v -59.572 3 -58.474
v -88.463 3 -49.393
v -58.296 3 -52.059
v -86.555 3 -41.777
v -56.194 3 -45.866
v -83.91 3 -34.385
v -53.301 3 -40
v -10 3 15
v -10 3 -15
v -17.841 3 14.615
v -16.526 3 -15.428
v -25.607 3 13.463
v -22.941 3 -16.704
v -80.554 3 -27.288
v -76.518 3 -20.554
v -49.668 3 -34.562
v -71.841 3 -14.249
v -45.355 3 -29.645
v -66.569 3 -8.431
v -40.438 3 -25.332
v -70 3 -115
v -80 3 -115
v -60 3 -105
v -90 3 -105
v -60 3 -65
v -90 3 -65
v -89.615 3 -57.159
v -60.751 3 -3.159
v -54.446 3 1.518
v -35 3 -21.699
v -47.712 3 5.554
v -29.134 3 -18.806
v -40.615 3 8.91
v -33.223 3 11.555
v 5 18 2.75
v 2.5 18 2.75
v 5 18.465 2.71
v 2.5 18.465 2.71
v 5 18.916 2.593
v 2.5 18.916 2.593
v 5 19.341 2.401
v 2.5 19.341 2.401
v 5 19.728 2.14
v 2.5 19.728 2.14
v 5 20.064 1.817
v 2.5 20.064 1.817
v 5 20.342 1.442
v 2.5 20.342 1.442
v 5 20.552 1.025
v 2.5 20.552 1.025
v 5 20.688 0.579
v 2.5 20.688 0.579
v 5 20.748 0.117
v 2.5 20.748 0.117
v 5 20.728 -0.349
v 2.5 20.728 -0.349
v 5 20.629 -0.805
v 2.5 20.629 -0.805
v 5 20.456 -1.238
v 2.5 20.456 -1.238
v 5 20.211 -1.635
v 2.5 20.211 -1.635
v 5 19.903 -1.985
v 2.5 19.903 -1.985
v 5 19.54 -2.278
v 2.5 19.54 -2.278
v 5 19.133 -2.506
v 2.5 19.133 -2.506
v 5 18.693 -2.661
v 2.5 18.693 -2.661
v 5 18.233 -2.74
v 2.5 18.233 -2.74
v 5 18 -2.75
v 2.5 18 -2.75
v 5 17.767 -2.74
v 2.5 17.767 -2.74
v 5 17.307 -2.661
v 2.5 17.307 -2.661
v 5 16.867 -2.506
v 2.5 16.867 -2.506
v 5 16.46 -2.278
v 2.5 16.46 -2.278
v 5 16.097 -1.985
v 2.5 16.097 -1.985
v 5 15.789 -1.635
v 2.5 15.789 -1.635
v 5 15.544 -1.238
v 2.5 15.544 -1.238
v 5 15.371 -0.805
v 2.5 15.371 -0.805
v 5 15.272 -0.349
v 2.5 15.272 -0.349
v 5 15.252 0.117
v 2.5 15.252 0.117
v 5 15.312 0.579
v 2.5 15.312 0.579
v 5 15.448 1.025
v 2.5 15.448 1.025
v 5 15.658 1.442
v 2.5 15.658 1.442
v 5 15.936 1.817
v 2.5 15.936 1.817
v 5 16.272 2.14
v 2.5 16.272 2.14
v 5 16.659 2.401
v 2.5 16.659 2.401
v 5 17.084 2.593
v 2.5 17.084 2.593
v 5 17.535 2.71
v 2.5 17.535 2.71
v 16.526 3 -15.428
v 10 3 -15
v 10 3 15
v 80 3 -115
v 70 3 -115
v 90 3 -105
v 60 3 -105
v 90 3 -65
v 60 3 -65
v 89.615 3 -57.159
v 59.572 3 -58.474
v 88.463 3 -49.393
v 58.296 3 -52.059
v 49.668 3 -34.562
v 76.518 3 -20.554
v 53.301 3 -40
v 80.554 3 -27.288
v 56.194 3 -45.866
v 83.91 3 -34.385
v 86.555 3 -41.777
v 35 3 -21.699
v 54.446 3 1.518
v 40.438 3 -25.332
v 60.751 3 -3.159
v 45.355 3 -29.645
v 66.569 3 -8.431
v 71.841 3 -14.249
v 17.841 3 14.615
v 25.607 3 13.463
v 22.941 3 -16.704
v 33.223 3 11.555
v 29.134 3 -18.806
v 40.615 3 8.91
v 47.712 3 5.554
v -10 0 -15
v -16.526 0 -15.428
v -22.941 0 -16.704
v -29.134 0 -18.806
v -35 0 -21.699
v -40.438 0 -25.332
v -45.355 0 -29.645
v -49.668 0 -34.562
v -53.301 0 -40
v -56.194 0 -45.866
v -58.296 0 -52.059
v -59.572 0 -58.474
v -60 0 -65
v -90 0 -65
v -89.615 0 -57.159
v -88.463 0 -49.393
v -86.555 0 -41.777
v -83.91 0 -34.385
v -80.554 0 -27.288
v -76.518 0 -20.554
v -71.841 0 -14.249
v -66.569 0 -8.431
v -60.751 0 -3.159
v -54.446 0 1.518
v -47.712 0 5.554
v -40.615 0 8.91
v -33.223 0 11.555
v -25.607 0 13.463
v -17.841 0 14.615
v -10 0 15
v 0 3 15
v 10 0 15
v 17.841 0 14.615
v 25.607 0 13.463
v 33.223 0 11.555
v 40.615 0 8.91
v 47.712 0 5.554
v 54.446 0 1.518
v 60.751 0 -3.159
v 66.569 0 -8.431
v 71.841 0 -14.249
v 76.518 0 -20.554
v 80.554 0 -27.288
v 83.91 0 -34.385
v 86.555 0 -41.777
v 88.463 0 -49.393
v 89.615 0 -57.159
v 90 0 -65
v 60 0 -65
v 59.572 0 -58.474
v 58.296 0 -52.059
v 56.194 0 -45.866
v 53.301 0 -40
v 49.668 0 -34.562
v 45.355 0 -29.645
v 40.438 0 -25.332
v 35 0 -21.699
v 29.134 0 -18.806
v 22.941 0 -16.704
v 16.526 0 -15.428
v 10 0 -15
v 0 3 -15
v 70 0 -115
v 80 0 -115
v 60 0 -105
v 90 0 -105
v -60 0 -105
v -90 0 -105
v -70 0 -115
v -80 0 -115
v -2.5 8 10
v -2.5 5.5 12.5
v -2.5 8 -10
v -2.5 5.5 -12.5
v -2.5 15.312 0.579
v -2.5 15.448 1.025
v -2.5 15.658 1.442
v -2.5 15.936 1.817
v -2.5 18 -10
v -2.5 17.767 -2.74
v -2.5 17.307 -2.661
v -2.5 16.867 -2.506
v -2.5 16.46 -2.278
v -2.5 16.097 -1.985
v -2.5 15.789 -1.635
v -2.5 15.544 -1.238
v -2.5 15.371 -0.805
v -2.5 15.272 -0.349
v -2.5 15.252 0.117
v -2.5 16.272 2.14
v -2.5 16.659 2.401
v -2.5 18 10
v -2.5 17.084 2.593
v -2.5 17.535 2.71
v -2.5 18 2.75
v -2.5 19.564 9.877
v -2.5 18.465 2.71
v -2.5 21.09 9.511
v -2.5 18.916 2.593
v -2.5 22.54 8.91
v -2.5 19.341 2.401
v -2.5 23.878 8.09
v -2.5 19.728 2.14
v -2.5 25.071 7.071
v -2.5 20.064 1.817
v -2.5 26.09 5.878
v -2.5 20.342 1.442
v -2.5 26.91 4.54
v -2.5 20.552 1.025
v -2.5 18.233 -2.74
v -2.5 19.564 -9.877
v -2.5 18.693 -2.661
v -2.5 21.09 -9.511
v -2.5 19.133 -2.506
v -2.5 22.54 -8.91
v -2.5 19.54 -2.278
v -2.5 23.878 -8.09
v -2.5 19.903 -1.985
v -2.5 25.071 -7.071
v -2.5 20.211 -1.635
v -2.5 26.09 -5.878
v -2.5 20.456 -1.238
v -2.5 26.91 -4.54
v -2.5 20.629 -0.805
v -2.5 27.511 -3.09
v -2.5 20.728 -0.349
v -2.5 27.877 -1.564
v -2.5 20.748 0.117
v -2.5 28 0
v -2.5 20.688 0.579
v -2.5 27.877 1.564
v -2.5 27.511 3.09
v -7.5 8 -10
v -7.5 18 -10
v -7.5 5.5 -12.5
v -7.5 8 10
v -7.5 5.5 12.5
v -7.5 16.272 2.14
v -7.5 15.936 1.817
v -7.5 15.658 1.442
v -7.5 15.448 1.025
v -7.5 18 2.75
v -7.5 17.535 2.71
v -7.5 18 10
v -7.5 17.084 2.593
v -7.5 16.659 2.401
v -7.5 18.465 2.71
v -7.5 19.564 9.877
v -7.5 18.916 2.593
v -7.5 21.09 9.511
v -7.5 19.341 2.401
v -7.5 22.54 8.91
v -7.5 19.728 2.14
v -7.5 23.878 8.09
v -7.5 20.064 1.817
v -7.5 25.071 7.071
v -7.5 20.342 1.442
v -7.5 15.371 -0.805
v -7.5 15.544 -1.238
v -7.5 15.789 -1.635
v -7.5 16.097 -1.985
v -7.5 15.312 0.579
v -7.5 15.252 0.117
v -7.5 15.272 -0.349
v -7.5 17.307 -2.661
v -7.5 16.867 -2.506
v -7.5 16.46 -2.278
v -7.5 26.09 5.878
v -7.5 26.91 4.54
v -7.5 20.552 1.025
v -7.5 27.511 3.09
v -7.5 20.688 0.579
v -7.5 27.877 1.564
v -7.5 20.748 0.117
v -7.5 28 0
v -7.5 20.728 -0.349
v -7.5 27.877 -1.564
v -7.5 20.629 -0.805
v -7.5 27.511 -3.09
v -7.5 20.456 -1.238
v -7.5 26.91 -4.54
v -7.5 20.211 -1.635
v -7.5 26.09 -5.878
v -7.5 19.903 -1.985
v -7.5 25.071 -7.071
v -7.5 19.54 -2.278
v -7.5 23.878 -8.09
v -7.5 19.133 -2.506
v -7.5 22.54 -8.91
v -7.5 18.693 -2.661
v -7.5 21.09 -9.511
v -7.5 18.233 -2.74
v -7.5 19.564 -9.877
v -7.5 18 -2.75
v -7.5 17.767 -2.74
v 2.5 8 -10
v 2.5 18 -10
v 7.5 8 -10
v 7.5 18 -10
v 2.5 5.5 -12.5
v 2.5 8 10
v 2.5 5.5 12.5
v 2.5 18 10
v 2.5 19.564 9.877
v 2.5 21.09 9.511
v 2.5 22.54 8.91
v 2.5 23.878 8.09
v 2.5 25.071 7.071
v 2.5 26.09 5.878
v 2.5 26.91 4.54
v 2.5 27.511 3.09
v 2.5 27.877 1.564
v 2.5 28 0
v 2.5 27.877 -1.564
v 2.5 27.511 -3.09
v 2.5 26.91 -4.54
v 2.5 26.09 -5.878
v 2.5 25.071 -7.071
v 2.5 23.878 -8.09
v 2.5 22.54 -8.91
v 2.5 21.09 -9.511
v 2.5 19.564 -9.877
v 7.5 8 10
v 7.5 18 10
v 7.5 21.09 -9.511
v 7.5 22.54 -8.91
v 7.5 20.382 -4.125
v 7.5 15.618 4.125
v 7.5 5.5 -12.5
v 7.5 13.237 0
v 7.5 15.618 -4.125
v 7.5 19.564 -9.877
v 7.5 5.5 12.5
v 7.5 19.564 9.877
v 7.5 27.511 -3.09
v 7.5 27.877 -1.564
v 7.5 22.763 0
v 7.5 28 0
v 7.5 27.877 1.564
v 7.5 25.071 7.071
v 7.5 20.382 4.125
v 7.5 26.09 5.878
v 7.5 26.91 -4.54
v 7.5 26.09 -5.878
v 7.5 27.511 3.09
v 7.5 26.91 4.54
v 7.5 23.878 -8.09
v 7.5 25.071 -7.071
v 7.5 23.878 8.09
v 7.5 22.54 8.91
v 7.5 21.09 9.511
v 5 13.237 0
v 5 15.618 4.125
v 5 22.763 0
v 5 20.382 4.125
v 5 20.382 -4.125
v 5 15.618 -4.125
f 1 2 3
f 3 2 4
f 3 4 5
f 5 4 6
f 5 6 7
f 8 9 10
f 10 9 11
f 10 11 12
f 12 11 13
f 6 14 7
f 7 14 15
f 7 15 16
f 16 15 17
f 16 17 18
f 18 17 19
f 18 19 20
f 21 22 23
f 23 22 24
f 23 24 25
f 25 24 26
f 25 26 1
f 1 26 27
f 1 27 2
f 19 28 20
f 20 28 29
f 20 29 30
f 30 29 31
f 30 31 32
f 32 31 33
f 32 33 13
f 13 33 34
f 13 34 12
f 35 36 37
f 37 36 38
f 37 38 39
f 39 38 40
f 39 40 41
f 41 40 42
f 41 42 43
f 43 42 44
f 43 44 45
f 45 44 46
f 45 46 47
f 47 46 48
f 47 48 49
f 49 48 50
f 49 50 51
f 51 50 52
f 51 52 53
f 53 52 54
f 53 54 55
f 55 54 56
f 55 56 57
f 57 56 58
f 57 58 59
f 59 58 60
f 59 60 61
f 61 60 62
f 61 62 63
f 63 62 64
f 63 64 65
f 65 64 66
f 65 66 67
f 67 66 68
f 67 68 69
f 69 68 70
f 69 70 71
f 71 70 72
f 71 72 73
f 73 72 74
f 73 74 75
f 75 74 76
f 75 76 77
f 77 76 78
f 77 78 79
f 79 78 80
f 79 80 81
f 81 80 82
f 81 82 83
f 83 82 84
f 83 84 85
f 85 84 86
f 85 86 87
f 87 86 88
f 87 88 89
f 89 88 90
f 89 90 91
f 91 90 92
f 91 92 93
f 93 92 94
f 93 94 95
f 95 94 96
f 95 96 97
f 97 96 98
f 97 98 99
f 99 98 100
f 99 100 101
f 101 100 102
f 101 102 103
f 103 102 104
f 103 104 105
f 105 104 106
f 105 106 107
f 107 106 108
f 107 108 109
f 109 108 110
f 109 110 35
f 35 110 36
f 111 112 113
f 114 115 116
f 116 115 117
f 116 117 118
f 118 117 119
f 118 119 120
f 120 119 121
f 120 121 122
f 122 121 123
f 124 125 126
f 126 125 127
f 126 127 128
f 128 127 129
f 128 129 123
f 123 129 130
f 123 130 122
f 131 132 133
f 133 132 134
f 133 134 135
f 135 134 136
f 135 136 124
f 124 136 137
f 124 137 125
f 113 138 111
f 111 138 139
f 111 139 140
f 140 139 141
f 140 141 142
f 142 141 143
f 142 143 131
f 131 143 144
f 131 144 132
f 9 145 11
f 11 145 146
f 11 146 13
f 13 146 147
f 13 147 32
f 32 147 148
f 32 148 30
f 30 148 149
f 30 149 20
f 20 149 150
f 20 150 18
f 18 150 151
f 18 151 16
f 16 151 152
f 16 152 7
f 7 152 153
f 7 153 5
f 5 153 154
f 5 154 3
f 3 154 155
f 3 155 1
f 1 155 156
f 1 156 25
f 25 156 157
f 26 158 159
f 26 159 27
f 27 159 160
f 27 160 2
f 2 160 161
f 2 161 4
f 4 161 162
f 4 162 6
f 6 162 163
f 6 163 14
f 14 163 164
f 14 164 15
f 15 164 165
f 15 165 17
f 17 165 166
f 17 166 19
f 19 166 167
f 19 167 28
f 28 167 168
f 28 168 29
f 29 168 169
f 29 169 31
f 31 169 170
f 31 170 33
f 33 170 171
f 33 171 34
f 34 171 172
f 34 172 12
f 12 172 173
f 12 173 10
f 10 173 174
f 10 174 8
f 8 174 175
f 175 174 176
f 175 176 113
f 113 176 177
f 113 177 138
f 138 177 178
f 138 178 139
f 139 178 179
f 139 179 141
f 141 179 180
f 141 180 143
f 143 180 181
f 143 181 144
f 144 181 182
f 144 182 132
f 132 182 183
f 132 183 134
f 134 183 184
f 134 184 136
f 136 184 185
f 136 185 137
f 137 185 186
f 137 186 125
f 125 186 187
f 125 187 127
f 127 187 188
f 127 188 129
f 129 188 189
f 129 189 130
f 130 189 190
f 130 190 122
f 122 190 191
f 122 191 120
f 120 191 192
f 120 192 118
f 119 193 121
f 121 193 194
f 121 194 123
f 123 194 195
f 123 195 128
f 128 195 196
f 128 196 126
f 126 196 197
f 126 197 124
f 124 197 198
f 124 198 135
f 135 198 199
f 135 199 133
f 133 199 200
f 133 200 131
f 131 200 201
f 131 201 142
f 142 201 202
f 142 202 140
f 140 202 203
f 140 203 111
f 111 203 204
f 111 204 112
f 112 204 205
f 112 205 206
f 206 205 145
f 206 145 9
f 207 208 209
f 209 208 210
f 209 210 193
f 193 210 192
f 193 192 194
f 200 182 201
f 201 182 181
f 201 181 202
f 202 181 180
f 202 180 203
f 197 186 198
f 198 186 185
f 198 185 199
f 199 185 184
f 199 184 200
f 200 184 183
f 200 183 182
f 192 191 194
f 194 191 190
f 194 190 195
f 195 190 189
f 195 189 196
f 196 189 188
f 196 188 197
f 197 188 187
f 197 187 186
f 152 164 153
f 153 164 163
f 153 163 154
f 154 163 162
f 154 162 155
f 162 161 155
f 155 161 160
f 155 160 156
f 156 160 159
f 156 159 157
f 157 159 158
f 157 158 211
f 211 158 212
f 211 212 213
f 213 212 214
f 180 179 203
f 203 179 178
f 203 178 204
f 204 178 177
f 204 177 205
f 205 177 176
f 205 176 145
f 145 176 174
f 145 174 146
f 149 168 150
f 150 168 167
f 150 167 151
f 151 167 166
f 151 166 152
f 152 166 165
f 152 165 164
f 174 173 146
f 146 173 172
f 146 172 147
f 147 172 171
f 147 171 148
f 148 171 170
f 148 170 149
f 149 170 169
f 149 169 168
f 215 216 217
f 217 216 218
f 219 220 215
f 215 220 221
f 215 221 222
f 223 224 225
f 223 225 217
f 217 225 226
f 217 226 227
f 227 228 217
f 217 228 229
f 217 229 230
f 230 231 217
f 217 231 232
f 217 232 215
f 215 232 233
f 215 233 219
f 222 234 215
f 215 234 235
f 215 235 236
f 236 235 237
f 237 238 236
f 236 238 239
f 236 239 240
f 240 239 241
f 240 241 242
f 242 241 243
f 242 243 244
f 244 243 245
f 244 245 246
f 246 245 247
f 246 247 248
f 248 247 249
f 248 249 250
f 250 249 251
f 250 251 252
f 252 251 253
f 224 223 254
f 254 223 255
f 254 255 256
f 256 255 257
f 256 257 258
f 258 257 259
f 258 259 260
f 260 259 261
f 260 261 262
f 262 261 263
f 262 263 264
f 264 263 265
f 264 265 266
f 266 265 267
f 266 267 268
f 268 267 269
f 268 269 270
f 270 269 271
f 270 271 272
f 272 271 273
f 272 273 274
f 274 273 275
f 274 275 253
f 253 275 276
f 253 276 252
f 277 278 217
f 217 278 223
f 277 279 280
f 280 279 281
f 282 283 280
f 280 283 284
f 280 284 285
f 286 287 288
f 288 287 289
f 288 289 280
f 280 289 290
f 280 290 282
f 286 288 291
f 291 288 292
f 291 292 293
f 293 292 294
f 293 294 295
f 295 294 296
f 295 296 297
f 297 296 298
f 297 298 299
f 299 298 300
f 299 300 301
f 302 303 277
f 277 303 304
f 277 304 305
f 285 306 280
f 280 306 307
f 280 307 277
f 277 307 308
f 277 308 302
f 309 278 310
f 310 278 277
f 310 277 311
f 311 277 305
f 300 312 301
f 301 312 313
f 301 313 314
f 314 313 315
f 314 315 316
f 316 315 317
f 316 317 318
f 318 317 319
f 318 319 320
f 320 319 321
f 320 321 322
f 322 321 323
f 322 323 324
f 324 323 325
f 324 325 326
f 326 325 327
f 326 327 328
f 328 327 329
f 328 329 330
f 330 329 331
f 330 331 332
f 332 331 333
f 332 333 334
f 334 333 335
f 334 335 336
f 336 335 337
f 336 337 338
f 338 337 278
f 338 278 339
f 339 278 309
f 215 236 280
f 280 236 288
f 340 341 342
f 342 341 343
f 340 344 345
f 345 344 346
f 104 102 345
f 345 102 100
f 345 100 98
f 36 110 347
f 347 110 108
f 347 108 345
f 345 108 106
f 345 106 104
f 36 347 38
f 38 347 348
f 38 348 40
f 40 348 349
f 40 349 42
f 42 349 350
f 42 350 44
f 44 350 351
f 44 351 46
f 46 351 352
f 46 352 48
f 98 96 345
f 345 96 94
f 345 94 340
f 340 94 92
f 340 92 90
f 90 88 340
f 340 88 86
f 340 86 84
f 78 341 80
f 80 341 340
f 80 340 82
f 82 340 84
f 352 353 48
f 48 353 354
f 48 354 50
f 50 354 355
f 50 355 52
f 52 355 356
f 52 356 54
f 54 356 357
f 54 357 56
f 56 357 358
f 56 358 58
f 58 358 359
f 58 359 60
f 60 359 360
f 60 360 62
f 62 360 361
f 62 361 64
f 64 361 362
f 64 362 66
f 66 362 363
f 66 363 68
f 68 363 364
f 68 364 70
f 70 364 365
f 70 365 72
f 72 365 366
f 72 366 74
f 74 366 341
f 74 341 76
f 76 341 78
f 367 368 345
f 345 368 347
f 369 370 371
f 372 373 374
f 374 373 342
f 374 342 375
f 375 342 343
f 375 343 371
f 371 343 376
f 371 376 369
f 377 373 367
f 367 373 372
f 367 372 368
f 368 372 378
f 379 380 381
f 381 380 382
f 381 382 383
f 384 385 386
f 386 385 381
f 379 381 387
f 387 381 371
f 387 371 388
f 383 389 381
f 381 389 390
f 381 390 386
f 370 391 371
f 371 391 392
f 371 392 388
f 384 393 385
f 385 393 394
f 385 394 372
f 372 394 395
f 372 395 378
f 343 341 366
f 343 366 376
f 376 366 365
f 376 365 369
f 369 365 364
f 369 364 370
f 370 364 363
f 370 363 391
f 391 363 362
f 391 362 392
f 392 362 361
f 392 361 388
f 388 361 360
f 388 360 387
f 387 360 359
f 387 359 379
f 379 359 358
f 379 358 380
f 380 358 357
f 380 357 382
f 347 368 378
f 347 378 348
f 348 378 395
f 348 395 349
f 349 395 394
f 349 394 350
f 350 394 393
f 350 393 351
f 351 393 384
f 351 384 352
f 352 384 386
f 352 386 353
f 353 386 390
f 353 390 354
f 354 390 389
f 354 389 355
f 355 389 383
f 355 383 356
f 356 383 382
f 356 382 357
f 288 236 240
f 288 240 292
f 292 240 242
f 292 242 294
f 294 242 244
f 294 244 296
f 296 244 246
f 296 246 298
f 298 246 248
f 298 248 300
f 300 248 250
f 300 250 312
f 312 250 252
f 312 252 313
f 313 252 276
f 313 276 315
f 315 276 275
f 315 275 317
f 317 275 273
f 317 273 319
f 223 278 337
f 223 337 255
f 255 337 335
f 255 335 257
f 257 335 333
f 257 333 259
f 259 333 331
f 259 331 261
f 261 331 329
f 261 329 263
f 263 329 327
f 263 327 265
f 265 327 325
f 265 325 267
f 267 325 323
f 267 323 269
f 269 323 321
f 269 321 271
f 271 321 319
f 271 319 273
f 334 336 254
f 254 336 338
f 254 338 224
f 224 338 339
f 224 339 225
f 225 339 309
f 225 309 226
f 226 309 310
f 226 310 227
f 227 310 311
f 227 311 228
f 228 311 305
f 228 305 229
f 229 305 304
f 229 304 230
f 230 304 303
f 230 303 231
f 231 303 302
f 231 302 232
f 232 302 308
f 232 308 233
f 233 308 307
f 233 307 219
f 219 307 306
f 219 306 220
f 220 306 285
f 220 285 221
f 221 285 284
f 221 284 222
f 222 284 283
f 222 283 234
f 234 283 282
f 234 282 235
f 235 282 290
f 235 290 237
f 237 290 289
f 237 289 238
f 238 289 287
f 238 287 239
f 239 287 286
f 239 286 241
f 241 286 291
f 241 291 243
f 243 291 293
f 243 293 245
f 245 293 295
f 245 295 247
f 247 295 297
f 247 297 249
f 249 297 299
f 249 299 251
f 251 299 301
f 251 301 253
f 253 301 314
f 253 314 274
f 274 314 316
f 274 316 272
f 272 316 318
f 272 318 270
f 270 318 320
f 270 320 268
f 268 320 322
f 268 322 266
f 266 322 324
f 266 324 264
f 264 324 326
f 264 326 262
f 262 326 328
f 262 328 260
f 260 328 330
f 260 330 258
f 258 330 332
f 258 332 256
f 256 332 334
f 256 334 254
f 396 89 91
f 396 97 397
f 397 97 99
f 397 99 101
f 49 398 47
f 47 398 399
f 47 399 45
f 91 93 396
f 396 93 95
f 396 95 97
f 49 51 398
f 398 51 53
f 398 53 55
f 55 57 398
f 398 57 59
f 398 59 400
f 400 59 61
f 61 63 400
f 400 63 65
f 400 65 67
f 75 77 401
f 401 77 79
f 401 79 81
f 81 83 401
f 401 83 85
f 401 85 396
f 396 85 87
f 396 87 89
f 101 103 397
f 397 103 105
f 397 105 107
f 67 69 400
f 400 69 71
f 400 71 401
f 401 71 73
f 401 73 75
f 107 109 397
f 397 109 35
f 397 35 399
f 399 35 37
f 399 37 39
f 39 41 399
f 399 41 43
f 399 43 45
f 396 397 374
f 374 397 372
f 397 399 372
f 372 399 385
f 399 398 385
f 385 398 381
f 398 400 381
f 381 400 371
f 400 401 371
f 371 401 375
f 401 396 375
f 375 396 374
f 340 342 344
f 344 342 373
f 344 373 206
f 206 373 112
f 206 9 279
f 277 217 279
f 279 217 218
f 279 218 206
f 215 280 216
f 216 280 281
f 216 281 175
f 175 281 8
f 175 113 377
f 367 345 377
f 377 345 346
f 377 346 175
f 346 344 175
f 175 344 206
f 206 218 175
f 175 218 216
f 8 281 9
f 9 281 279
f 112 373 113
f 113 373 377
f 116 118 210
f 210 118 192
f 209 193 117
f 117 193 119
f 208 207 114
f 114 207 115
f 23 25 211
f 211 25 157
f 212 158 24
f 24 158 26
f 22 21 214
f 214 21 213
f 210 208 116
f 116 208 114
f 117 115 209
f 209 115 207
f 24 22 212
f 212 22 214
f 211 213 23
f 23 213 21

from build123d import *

# Parameters (mm, degrees)
BOSS_EXTRUDE1_DEPTH     = 3
SKETCH4_W               = 5
SKETCH4_H               = 20
BOSS_EXTRUDE2_DEPTH     = 25
FILLET3_R               = 10
CUT_EXTRUDE3_DEPTH      = 121.479251326
CUT_EXTRUDE3_DEPTH_BACK = 121.479251326
SKETCH5_R               = 2.75
CUT_EXTRUDE4_DEPTH      = 2.5
CHAMFER1_SIZE           = 5
CHAMFER3_SIZE           = 2.5
SKETCH7_W               = 30
SKETCH7_H               = 3
BOSS_EXTRUDE3_DEPTH     = 50
CHAMFER4_SIZE           = 10


with BuildPart() as part:
    # Sketch1 → Boss-Extrude1 (new body)
    with BuildSketch(Plane(origin=(0, 0, 0), x_dir=(1, 0, 0), z_dir=(0, 1, 0))):
        with BuildLine():
            Line((-10, 15), (10, 15))
            ThreePointArc((10, 15), (45.355339059, 29.644660941), (60, 65))
            Line((60, 65), (90, 65))
            ThreePointArc((90, 65), (66.568542495, 8.431457505), (10, -15))
            Line((10, -15), (-10, -15))
            ThreePointArc((-10, -15), (-66.568542495, 8.431457505), (-90, 65))
            Line((-90, 65), (-60, 65))
            ThreePointArc((-60, 65), (-45.355339059, 29.644660941), (-10, 15))
        make_face()
    extrude(amount=BOSS_EXTRUDE1_DEPTH)

    # Sketch4 → Boss-Extrude2 (add)
    with BuildSketch(Plane(origin=(0, 3, 0), x_dir=(1, 0, 0), z_dir=(0, 1, 0))):
        with Locations((-5, 0)):
            Rectangle(SKETCH4_W, SKETCH4_H)
        with Locations((5, 0)):
            Rectangle(SKETCH4_W, SKETCH4_H)
    extrude(amount=BOSS_EXTRUDE2_DEPTH)

    # Fillet3
    fillet3_edges = [part.edges().sort_by_distance(p)[0] for p in [
        (5, 28, 10),
        (5, 28, -10),
        (-5, 28, -10),
        (-5, 28, 10),
    ]]
    fillet(fillet3_edges, radius=FILLET3_R - 0.0001)  # a hair under: the kernel refuses the full size

    # Sketch5 → Cut-Extrude3 (cut, two sides: drawn at the far end of the back side and taken through both)
    with BuildSketch(Plane.ZY.offset(7.5).offset(-CUT_EXTRUDE3_DEPTH_BACK)):
        with Locations((0, 18)):
            Circle(SKETCH5_R)
    extrude(amount=CUT_EXTRUDE3_DEPTH + CUT_EXTRUDE3_DEPTH_BACK, mode=Mode.SUBTRACT)

    # Sketch6 → Cut-Extrude4 (cut)
    with BuildSketch(Plane(origin=(7.5, 0, 0), x_dir=(0, 0, -1), z_dir=(1, 0, 0))):
        Polygon((0, 13.236860279), (4.125, 15.61843014), (4.125, 20.38156986), (0, 22.763139721), (-4.125, 20.38156986), (-4.125, 15.61843014), align=None)
    extrude(amount=-CUT_EXTRUDE4_DEPTH, mode=Mode.SUBTRACT)

    # Chamfer1
    chamfer1_edges = [part.edges().sort_by_distance(p)[0] for p in [
        (-5, 3, -10),
        (-5, 3, 10),
        (5, 3, -10),
        (5, 3, 10),
    ]]
    chamfer(chamfer1_edges, length=CHAMFER1_SIZE - 0.0001)  # a hair under: the kernel refuses the full size

    # Chamfer3
    chamfer3_edges = [part.edges().sort_by_distance(p)[0] for p in [
        (-2.5, 3, 0),
        (-7.5, 3, 0),
        (2.5, 3, 0),
        (7.5, 3, 0),
    ]]
    chamfer(chamfer3_edges, length=CHAMFER3_SIZE - 0.0001)  # a hair under: the kernel refuses the full size

    # Sketch7 → Boss-Extrude3 (add)
    with BuildSketch(Plane(origin=(0, 0, -65), x_dir=(-1, 0, 0), z_dir=(0, 0, -1))):
        with Locations((-75, 1.5)):
            Rectangle(SKETCH7_W, SKETCH7_H)
        with Locations((75, 1.5)):
            Rectangle(SKETCH7_W, SKETCH7_H)
    extrude(amount=BOSS_EXTRUDE3_DEPTH)

    # Chamfer4
    chamfer4_edges = [part.edges().sort_by_distance(p)[0] for p in [
        (90, 1.5, -115),
        (60, 1.5, -115),
        (-60, 1.5, -115),
        (-90, 1.5, -115),
    ]]
    chamfer(chamfer4_edges, length=CHAMFER4_SIZE)


solid = part.part
